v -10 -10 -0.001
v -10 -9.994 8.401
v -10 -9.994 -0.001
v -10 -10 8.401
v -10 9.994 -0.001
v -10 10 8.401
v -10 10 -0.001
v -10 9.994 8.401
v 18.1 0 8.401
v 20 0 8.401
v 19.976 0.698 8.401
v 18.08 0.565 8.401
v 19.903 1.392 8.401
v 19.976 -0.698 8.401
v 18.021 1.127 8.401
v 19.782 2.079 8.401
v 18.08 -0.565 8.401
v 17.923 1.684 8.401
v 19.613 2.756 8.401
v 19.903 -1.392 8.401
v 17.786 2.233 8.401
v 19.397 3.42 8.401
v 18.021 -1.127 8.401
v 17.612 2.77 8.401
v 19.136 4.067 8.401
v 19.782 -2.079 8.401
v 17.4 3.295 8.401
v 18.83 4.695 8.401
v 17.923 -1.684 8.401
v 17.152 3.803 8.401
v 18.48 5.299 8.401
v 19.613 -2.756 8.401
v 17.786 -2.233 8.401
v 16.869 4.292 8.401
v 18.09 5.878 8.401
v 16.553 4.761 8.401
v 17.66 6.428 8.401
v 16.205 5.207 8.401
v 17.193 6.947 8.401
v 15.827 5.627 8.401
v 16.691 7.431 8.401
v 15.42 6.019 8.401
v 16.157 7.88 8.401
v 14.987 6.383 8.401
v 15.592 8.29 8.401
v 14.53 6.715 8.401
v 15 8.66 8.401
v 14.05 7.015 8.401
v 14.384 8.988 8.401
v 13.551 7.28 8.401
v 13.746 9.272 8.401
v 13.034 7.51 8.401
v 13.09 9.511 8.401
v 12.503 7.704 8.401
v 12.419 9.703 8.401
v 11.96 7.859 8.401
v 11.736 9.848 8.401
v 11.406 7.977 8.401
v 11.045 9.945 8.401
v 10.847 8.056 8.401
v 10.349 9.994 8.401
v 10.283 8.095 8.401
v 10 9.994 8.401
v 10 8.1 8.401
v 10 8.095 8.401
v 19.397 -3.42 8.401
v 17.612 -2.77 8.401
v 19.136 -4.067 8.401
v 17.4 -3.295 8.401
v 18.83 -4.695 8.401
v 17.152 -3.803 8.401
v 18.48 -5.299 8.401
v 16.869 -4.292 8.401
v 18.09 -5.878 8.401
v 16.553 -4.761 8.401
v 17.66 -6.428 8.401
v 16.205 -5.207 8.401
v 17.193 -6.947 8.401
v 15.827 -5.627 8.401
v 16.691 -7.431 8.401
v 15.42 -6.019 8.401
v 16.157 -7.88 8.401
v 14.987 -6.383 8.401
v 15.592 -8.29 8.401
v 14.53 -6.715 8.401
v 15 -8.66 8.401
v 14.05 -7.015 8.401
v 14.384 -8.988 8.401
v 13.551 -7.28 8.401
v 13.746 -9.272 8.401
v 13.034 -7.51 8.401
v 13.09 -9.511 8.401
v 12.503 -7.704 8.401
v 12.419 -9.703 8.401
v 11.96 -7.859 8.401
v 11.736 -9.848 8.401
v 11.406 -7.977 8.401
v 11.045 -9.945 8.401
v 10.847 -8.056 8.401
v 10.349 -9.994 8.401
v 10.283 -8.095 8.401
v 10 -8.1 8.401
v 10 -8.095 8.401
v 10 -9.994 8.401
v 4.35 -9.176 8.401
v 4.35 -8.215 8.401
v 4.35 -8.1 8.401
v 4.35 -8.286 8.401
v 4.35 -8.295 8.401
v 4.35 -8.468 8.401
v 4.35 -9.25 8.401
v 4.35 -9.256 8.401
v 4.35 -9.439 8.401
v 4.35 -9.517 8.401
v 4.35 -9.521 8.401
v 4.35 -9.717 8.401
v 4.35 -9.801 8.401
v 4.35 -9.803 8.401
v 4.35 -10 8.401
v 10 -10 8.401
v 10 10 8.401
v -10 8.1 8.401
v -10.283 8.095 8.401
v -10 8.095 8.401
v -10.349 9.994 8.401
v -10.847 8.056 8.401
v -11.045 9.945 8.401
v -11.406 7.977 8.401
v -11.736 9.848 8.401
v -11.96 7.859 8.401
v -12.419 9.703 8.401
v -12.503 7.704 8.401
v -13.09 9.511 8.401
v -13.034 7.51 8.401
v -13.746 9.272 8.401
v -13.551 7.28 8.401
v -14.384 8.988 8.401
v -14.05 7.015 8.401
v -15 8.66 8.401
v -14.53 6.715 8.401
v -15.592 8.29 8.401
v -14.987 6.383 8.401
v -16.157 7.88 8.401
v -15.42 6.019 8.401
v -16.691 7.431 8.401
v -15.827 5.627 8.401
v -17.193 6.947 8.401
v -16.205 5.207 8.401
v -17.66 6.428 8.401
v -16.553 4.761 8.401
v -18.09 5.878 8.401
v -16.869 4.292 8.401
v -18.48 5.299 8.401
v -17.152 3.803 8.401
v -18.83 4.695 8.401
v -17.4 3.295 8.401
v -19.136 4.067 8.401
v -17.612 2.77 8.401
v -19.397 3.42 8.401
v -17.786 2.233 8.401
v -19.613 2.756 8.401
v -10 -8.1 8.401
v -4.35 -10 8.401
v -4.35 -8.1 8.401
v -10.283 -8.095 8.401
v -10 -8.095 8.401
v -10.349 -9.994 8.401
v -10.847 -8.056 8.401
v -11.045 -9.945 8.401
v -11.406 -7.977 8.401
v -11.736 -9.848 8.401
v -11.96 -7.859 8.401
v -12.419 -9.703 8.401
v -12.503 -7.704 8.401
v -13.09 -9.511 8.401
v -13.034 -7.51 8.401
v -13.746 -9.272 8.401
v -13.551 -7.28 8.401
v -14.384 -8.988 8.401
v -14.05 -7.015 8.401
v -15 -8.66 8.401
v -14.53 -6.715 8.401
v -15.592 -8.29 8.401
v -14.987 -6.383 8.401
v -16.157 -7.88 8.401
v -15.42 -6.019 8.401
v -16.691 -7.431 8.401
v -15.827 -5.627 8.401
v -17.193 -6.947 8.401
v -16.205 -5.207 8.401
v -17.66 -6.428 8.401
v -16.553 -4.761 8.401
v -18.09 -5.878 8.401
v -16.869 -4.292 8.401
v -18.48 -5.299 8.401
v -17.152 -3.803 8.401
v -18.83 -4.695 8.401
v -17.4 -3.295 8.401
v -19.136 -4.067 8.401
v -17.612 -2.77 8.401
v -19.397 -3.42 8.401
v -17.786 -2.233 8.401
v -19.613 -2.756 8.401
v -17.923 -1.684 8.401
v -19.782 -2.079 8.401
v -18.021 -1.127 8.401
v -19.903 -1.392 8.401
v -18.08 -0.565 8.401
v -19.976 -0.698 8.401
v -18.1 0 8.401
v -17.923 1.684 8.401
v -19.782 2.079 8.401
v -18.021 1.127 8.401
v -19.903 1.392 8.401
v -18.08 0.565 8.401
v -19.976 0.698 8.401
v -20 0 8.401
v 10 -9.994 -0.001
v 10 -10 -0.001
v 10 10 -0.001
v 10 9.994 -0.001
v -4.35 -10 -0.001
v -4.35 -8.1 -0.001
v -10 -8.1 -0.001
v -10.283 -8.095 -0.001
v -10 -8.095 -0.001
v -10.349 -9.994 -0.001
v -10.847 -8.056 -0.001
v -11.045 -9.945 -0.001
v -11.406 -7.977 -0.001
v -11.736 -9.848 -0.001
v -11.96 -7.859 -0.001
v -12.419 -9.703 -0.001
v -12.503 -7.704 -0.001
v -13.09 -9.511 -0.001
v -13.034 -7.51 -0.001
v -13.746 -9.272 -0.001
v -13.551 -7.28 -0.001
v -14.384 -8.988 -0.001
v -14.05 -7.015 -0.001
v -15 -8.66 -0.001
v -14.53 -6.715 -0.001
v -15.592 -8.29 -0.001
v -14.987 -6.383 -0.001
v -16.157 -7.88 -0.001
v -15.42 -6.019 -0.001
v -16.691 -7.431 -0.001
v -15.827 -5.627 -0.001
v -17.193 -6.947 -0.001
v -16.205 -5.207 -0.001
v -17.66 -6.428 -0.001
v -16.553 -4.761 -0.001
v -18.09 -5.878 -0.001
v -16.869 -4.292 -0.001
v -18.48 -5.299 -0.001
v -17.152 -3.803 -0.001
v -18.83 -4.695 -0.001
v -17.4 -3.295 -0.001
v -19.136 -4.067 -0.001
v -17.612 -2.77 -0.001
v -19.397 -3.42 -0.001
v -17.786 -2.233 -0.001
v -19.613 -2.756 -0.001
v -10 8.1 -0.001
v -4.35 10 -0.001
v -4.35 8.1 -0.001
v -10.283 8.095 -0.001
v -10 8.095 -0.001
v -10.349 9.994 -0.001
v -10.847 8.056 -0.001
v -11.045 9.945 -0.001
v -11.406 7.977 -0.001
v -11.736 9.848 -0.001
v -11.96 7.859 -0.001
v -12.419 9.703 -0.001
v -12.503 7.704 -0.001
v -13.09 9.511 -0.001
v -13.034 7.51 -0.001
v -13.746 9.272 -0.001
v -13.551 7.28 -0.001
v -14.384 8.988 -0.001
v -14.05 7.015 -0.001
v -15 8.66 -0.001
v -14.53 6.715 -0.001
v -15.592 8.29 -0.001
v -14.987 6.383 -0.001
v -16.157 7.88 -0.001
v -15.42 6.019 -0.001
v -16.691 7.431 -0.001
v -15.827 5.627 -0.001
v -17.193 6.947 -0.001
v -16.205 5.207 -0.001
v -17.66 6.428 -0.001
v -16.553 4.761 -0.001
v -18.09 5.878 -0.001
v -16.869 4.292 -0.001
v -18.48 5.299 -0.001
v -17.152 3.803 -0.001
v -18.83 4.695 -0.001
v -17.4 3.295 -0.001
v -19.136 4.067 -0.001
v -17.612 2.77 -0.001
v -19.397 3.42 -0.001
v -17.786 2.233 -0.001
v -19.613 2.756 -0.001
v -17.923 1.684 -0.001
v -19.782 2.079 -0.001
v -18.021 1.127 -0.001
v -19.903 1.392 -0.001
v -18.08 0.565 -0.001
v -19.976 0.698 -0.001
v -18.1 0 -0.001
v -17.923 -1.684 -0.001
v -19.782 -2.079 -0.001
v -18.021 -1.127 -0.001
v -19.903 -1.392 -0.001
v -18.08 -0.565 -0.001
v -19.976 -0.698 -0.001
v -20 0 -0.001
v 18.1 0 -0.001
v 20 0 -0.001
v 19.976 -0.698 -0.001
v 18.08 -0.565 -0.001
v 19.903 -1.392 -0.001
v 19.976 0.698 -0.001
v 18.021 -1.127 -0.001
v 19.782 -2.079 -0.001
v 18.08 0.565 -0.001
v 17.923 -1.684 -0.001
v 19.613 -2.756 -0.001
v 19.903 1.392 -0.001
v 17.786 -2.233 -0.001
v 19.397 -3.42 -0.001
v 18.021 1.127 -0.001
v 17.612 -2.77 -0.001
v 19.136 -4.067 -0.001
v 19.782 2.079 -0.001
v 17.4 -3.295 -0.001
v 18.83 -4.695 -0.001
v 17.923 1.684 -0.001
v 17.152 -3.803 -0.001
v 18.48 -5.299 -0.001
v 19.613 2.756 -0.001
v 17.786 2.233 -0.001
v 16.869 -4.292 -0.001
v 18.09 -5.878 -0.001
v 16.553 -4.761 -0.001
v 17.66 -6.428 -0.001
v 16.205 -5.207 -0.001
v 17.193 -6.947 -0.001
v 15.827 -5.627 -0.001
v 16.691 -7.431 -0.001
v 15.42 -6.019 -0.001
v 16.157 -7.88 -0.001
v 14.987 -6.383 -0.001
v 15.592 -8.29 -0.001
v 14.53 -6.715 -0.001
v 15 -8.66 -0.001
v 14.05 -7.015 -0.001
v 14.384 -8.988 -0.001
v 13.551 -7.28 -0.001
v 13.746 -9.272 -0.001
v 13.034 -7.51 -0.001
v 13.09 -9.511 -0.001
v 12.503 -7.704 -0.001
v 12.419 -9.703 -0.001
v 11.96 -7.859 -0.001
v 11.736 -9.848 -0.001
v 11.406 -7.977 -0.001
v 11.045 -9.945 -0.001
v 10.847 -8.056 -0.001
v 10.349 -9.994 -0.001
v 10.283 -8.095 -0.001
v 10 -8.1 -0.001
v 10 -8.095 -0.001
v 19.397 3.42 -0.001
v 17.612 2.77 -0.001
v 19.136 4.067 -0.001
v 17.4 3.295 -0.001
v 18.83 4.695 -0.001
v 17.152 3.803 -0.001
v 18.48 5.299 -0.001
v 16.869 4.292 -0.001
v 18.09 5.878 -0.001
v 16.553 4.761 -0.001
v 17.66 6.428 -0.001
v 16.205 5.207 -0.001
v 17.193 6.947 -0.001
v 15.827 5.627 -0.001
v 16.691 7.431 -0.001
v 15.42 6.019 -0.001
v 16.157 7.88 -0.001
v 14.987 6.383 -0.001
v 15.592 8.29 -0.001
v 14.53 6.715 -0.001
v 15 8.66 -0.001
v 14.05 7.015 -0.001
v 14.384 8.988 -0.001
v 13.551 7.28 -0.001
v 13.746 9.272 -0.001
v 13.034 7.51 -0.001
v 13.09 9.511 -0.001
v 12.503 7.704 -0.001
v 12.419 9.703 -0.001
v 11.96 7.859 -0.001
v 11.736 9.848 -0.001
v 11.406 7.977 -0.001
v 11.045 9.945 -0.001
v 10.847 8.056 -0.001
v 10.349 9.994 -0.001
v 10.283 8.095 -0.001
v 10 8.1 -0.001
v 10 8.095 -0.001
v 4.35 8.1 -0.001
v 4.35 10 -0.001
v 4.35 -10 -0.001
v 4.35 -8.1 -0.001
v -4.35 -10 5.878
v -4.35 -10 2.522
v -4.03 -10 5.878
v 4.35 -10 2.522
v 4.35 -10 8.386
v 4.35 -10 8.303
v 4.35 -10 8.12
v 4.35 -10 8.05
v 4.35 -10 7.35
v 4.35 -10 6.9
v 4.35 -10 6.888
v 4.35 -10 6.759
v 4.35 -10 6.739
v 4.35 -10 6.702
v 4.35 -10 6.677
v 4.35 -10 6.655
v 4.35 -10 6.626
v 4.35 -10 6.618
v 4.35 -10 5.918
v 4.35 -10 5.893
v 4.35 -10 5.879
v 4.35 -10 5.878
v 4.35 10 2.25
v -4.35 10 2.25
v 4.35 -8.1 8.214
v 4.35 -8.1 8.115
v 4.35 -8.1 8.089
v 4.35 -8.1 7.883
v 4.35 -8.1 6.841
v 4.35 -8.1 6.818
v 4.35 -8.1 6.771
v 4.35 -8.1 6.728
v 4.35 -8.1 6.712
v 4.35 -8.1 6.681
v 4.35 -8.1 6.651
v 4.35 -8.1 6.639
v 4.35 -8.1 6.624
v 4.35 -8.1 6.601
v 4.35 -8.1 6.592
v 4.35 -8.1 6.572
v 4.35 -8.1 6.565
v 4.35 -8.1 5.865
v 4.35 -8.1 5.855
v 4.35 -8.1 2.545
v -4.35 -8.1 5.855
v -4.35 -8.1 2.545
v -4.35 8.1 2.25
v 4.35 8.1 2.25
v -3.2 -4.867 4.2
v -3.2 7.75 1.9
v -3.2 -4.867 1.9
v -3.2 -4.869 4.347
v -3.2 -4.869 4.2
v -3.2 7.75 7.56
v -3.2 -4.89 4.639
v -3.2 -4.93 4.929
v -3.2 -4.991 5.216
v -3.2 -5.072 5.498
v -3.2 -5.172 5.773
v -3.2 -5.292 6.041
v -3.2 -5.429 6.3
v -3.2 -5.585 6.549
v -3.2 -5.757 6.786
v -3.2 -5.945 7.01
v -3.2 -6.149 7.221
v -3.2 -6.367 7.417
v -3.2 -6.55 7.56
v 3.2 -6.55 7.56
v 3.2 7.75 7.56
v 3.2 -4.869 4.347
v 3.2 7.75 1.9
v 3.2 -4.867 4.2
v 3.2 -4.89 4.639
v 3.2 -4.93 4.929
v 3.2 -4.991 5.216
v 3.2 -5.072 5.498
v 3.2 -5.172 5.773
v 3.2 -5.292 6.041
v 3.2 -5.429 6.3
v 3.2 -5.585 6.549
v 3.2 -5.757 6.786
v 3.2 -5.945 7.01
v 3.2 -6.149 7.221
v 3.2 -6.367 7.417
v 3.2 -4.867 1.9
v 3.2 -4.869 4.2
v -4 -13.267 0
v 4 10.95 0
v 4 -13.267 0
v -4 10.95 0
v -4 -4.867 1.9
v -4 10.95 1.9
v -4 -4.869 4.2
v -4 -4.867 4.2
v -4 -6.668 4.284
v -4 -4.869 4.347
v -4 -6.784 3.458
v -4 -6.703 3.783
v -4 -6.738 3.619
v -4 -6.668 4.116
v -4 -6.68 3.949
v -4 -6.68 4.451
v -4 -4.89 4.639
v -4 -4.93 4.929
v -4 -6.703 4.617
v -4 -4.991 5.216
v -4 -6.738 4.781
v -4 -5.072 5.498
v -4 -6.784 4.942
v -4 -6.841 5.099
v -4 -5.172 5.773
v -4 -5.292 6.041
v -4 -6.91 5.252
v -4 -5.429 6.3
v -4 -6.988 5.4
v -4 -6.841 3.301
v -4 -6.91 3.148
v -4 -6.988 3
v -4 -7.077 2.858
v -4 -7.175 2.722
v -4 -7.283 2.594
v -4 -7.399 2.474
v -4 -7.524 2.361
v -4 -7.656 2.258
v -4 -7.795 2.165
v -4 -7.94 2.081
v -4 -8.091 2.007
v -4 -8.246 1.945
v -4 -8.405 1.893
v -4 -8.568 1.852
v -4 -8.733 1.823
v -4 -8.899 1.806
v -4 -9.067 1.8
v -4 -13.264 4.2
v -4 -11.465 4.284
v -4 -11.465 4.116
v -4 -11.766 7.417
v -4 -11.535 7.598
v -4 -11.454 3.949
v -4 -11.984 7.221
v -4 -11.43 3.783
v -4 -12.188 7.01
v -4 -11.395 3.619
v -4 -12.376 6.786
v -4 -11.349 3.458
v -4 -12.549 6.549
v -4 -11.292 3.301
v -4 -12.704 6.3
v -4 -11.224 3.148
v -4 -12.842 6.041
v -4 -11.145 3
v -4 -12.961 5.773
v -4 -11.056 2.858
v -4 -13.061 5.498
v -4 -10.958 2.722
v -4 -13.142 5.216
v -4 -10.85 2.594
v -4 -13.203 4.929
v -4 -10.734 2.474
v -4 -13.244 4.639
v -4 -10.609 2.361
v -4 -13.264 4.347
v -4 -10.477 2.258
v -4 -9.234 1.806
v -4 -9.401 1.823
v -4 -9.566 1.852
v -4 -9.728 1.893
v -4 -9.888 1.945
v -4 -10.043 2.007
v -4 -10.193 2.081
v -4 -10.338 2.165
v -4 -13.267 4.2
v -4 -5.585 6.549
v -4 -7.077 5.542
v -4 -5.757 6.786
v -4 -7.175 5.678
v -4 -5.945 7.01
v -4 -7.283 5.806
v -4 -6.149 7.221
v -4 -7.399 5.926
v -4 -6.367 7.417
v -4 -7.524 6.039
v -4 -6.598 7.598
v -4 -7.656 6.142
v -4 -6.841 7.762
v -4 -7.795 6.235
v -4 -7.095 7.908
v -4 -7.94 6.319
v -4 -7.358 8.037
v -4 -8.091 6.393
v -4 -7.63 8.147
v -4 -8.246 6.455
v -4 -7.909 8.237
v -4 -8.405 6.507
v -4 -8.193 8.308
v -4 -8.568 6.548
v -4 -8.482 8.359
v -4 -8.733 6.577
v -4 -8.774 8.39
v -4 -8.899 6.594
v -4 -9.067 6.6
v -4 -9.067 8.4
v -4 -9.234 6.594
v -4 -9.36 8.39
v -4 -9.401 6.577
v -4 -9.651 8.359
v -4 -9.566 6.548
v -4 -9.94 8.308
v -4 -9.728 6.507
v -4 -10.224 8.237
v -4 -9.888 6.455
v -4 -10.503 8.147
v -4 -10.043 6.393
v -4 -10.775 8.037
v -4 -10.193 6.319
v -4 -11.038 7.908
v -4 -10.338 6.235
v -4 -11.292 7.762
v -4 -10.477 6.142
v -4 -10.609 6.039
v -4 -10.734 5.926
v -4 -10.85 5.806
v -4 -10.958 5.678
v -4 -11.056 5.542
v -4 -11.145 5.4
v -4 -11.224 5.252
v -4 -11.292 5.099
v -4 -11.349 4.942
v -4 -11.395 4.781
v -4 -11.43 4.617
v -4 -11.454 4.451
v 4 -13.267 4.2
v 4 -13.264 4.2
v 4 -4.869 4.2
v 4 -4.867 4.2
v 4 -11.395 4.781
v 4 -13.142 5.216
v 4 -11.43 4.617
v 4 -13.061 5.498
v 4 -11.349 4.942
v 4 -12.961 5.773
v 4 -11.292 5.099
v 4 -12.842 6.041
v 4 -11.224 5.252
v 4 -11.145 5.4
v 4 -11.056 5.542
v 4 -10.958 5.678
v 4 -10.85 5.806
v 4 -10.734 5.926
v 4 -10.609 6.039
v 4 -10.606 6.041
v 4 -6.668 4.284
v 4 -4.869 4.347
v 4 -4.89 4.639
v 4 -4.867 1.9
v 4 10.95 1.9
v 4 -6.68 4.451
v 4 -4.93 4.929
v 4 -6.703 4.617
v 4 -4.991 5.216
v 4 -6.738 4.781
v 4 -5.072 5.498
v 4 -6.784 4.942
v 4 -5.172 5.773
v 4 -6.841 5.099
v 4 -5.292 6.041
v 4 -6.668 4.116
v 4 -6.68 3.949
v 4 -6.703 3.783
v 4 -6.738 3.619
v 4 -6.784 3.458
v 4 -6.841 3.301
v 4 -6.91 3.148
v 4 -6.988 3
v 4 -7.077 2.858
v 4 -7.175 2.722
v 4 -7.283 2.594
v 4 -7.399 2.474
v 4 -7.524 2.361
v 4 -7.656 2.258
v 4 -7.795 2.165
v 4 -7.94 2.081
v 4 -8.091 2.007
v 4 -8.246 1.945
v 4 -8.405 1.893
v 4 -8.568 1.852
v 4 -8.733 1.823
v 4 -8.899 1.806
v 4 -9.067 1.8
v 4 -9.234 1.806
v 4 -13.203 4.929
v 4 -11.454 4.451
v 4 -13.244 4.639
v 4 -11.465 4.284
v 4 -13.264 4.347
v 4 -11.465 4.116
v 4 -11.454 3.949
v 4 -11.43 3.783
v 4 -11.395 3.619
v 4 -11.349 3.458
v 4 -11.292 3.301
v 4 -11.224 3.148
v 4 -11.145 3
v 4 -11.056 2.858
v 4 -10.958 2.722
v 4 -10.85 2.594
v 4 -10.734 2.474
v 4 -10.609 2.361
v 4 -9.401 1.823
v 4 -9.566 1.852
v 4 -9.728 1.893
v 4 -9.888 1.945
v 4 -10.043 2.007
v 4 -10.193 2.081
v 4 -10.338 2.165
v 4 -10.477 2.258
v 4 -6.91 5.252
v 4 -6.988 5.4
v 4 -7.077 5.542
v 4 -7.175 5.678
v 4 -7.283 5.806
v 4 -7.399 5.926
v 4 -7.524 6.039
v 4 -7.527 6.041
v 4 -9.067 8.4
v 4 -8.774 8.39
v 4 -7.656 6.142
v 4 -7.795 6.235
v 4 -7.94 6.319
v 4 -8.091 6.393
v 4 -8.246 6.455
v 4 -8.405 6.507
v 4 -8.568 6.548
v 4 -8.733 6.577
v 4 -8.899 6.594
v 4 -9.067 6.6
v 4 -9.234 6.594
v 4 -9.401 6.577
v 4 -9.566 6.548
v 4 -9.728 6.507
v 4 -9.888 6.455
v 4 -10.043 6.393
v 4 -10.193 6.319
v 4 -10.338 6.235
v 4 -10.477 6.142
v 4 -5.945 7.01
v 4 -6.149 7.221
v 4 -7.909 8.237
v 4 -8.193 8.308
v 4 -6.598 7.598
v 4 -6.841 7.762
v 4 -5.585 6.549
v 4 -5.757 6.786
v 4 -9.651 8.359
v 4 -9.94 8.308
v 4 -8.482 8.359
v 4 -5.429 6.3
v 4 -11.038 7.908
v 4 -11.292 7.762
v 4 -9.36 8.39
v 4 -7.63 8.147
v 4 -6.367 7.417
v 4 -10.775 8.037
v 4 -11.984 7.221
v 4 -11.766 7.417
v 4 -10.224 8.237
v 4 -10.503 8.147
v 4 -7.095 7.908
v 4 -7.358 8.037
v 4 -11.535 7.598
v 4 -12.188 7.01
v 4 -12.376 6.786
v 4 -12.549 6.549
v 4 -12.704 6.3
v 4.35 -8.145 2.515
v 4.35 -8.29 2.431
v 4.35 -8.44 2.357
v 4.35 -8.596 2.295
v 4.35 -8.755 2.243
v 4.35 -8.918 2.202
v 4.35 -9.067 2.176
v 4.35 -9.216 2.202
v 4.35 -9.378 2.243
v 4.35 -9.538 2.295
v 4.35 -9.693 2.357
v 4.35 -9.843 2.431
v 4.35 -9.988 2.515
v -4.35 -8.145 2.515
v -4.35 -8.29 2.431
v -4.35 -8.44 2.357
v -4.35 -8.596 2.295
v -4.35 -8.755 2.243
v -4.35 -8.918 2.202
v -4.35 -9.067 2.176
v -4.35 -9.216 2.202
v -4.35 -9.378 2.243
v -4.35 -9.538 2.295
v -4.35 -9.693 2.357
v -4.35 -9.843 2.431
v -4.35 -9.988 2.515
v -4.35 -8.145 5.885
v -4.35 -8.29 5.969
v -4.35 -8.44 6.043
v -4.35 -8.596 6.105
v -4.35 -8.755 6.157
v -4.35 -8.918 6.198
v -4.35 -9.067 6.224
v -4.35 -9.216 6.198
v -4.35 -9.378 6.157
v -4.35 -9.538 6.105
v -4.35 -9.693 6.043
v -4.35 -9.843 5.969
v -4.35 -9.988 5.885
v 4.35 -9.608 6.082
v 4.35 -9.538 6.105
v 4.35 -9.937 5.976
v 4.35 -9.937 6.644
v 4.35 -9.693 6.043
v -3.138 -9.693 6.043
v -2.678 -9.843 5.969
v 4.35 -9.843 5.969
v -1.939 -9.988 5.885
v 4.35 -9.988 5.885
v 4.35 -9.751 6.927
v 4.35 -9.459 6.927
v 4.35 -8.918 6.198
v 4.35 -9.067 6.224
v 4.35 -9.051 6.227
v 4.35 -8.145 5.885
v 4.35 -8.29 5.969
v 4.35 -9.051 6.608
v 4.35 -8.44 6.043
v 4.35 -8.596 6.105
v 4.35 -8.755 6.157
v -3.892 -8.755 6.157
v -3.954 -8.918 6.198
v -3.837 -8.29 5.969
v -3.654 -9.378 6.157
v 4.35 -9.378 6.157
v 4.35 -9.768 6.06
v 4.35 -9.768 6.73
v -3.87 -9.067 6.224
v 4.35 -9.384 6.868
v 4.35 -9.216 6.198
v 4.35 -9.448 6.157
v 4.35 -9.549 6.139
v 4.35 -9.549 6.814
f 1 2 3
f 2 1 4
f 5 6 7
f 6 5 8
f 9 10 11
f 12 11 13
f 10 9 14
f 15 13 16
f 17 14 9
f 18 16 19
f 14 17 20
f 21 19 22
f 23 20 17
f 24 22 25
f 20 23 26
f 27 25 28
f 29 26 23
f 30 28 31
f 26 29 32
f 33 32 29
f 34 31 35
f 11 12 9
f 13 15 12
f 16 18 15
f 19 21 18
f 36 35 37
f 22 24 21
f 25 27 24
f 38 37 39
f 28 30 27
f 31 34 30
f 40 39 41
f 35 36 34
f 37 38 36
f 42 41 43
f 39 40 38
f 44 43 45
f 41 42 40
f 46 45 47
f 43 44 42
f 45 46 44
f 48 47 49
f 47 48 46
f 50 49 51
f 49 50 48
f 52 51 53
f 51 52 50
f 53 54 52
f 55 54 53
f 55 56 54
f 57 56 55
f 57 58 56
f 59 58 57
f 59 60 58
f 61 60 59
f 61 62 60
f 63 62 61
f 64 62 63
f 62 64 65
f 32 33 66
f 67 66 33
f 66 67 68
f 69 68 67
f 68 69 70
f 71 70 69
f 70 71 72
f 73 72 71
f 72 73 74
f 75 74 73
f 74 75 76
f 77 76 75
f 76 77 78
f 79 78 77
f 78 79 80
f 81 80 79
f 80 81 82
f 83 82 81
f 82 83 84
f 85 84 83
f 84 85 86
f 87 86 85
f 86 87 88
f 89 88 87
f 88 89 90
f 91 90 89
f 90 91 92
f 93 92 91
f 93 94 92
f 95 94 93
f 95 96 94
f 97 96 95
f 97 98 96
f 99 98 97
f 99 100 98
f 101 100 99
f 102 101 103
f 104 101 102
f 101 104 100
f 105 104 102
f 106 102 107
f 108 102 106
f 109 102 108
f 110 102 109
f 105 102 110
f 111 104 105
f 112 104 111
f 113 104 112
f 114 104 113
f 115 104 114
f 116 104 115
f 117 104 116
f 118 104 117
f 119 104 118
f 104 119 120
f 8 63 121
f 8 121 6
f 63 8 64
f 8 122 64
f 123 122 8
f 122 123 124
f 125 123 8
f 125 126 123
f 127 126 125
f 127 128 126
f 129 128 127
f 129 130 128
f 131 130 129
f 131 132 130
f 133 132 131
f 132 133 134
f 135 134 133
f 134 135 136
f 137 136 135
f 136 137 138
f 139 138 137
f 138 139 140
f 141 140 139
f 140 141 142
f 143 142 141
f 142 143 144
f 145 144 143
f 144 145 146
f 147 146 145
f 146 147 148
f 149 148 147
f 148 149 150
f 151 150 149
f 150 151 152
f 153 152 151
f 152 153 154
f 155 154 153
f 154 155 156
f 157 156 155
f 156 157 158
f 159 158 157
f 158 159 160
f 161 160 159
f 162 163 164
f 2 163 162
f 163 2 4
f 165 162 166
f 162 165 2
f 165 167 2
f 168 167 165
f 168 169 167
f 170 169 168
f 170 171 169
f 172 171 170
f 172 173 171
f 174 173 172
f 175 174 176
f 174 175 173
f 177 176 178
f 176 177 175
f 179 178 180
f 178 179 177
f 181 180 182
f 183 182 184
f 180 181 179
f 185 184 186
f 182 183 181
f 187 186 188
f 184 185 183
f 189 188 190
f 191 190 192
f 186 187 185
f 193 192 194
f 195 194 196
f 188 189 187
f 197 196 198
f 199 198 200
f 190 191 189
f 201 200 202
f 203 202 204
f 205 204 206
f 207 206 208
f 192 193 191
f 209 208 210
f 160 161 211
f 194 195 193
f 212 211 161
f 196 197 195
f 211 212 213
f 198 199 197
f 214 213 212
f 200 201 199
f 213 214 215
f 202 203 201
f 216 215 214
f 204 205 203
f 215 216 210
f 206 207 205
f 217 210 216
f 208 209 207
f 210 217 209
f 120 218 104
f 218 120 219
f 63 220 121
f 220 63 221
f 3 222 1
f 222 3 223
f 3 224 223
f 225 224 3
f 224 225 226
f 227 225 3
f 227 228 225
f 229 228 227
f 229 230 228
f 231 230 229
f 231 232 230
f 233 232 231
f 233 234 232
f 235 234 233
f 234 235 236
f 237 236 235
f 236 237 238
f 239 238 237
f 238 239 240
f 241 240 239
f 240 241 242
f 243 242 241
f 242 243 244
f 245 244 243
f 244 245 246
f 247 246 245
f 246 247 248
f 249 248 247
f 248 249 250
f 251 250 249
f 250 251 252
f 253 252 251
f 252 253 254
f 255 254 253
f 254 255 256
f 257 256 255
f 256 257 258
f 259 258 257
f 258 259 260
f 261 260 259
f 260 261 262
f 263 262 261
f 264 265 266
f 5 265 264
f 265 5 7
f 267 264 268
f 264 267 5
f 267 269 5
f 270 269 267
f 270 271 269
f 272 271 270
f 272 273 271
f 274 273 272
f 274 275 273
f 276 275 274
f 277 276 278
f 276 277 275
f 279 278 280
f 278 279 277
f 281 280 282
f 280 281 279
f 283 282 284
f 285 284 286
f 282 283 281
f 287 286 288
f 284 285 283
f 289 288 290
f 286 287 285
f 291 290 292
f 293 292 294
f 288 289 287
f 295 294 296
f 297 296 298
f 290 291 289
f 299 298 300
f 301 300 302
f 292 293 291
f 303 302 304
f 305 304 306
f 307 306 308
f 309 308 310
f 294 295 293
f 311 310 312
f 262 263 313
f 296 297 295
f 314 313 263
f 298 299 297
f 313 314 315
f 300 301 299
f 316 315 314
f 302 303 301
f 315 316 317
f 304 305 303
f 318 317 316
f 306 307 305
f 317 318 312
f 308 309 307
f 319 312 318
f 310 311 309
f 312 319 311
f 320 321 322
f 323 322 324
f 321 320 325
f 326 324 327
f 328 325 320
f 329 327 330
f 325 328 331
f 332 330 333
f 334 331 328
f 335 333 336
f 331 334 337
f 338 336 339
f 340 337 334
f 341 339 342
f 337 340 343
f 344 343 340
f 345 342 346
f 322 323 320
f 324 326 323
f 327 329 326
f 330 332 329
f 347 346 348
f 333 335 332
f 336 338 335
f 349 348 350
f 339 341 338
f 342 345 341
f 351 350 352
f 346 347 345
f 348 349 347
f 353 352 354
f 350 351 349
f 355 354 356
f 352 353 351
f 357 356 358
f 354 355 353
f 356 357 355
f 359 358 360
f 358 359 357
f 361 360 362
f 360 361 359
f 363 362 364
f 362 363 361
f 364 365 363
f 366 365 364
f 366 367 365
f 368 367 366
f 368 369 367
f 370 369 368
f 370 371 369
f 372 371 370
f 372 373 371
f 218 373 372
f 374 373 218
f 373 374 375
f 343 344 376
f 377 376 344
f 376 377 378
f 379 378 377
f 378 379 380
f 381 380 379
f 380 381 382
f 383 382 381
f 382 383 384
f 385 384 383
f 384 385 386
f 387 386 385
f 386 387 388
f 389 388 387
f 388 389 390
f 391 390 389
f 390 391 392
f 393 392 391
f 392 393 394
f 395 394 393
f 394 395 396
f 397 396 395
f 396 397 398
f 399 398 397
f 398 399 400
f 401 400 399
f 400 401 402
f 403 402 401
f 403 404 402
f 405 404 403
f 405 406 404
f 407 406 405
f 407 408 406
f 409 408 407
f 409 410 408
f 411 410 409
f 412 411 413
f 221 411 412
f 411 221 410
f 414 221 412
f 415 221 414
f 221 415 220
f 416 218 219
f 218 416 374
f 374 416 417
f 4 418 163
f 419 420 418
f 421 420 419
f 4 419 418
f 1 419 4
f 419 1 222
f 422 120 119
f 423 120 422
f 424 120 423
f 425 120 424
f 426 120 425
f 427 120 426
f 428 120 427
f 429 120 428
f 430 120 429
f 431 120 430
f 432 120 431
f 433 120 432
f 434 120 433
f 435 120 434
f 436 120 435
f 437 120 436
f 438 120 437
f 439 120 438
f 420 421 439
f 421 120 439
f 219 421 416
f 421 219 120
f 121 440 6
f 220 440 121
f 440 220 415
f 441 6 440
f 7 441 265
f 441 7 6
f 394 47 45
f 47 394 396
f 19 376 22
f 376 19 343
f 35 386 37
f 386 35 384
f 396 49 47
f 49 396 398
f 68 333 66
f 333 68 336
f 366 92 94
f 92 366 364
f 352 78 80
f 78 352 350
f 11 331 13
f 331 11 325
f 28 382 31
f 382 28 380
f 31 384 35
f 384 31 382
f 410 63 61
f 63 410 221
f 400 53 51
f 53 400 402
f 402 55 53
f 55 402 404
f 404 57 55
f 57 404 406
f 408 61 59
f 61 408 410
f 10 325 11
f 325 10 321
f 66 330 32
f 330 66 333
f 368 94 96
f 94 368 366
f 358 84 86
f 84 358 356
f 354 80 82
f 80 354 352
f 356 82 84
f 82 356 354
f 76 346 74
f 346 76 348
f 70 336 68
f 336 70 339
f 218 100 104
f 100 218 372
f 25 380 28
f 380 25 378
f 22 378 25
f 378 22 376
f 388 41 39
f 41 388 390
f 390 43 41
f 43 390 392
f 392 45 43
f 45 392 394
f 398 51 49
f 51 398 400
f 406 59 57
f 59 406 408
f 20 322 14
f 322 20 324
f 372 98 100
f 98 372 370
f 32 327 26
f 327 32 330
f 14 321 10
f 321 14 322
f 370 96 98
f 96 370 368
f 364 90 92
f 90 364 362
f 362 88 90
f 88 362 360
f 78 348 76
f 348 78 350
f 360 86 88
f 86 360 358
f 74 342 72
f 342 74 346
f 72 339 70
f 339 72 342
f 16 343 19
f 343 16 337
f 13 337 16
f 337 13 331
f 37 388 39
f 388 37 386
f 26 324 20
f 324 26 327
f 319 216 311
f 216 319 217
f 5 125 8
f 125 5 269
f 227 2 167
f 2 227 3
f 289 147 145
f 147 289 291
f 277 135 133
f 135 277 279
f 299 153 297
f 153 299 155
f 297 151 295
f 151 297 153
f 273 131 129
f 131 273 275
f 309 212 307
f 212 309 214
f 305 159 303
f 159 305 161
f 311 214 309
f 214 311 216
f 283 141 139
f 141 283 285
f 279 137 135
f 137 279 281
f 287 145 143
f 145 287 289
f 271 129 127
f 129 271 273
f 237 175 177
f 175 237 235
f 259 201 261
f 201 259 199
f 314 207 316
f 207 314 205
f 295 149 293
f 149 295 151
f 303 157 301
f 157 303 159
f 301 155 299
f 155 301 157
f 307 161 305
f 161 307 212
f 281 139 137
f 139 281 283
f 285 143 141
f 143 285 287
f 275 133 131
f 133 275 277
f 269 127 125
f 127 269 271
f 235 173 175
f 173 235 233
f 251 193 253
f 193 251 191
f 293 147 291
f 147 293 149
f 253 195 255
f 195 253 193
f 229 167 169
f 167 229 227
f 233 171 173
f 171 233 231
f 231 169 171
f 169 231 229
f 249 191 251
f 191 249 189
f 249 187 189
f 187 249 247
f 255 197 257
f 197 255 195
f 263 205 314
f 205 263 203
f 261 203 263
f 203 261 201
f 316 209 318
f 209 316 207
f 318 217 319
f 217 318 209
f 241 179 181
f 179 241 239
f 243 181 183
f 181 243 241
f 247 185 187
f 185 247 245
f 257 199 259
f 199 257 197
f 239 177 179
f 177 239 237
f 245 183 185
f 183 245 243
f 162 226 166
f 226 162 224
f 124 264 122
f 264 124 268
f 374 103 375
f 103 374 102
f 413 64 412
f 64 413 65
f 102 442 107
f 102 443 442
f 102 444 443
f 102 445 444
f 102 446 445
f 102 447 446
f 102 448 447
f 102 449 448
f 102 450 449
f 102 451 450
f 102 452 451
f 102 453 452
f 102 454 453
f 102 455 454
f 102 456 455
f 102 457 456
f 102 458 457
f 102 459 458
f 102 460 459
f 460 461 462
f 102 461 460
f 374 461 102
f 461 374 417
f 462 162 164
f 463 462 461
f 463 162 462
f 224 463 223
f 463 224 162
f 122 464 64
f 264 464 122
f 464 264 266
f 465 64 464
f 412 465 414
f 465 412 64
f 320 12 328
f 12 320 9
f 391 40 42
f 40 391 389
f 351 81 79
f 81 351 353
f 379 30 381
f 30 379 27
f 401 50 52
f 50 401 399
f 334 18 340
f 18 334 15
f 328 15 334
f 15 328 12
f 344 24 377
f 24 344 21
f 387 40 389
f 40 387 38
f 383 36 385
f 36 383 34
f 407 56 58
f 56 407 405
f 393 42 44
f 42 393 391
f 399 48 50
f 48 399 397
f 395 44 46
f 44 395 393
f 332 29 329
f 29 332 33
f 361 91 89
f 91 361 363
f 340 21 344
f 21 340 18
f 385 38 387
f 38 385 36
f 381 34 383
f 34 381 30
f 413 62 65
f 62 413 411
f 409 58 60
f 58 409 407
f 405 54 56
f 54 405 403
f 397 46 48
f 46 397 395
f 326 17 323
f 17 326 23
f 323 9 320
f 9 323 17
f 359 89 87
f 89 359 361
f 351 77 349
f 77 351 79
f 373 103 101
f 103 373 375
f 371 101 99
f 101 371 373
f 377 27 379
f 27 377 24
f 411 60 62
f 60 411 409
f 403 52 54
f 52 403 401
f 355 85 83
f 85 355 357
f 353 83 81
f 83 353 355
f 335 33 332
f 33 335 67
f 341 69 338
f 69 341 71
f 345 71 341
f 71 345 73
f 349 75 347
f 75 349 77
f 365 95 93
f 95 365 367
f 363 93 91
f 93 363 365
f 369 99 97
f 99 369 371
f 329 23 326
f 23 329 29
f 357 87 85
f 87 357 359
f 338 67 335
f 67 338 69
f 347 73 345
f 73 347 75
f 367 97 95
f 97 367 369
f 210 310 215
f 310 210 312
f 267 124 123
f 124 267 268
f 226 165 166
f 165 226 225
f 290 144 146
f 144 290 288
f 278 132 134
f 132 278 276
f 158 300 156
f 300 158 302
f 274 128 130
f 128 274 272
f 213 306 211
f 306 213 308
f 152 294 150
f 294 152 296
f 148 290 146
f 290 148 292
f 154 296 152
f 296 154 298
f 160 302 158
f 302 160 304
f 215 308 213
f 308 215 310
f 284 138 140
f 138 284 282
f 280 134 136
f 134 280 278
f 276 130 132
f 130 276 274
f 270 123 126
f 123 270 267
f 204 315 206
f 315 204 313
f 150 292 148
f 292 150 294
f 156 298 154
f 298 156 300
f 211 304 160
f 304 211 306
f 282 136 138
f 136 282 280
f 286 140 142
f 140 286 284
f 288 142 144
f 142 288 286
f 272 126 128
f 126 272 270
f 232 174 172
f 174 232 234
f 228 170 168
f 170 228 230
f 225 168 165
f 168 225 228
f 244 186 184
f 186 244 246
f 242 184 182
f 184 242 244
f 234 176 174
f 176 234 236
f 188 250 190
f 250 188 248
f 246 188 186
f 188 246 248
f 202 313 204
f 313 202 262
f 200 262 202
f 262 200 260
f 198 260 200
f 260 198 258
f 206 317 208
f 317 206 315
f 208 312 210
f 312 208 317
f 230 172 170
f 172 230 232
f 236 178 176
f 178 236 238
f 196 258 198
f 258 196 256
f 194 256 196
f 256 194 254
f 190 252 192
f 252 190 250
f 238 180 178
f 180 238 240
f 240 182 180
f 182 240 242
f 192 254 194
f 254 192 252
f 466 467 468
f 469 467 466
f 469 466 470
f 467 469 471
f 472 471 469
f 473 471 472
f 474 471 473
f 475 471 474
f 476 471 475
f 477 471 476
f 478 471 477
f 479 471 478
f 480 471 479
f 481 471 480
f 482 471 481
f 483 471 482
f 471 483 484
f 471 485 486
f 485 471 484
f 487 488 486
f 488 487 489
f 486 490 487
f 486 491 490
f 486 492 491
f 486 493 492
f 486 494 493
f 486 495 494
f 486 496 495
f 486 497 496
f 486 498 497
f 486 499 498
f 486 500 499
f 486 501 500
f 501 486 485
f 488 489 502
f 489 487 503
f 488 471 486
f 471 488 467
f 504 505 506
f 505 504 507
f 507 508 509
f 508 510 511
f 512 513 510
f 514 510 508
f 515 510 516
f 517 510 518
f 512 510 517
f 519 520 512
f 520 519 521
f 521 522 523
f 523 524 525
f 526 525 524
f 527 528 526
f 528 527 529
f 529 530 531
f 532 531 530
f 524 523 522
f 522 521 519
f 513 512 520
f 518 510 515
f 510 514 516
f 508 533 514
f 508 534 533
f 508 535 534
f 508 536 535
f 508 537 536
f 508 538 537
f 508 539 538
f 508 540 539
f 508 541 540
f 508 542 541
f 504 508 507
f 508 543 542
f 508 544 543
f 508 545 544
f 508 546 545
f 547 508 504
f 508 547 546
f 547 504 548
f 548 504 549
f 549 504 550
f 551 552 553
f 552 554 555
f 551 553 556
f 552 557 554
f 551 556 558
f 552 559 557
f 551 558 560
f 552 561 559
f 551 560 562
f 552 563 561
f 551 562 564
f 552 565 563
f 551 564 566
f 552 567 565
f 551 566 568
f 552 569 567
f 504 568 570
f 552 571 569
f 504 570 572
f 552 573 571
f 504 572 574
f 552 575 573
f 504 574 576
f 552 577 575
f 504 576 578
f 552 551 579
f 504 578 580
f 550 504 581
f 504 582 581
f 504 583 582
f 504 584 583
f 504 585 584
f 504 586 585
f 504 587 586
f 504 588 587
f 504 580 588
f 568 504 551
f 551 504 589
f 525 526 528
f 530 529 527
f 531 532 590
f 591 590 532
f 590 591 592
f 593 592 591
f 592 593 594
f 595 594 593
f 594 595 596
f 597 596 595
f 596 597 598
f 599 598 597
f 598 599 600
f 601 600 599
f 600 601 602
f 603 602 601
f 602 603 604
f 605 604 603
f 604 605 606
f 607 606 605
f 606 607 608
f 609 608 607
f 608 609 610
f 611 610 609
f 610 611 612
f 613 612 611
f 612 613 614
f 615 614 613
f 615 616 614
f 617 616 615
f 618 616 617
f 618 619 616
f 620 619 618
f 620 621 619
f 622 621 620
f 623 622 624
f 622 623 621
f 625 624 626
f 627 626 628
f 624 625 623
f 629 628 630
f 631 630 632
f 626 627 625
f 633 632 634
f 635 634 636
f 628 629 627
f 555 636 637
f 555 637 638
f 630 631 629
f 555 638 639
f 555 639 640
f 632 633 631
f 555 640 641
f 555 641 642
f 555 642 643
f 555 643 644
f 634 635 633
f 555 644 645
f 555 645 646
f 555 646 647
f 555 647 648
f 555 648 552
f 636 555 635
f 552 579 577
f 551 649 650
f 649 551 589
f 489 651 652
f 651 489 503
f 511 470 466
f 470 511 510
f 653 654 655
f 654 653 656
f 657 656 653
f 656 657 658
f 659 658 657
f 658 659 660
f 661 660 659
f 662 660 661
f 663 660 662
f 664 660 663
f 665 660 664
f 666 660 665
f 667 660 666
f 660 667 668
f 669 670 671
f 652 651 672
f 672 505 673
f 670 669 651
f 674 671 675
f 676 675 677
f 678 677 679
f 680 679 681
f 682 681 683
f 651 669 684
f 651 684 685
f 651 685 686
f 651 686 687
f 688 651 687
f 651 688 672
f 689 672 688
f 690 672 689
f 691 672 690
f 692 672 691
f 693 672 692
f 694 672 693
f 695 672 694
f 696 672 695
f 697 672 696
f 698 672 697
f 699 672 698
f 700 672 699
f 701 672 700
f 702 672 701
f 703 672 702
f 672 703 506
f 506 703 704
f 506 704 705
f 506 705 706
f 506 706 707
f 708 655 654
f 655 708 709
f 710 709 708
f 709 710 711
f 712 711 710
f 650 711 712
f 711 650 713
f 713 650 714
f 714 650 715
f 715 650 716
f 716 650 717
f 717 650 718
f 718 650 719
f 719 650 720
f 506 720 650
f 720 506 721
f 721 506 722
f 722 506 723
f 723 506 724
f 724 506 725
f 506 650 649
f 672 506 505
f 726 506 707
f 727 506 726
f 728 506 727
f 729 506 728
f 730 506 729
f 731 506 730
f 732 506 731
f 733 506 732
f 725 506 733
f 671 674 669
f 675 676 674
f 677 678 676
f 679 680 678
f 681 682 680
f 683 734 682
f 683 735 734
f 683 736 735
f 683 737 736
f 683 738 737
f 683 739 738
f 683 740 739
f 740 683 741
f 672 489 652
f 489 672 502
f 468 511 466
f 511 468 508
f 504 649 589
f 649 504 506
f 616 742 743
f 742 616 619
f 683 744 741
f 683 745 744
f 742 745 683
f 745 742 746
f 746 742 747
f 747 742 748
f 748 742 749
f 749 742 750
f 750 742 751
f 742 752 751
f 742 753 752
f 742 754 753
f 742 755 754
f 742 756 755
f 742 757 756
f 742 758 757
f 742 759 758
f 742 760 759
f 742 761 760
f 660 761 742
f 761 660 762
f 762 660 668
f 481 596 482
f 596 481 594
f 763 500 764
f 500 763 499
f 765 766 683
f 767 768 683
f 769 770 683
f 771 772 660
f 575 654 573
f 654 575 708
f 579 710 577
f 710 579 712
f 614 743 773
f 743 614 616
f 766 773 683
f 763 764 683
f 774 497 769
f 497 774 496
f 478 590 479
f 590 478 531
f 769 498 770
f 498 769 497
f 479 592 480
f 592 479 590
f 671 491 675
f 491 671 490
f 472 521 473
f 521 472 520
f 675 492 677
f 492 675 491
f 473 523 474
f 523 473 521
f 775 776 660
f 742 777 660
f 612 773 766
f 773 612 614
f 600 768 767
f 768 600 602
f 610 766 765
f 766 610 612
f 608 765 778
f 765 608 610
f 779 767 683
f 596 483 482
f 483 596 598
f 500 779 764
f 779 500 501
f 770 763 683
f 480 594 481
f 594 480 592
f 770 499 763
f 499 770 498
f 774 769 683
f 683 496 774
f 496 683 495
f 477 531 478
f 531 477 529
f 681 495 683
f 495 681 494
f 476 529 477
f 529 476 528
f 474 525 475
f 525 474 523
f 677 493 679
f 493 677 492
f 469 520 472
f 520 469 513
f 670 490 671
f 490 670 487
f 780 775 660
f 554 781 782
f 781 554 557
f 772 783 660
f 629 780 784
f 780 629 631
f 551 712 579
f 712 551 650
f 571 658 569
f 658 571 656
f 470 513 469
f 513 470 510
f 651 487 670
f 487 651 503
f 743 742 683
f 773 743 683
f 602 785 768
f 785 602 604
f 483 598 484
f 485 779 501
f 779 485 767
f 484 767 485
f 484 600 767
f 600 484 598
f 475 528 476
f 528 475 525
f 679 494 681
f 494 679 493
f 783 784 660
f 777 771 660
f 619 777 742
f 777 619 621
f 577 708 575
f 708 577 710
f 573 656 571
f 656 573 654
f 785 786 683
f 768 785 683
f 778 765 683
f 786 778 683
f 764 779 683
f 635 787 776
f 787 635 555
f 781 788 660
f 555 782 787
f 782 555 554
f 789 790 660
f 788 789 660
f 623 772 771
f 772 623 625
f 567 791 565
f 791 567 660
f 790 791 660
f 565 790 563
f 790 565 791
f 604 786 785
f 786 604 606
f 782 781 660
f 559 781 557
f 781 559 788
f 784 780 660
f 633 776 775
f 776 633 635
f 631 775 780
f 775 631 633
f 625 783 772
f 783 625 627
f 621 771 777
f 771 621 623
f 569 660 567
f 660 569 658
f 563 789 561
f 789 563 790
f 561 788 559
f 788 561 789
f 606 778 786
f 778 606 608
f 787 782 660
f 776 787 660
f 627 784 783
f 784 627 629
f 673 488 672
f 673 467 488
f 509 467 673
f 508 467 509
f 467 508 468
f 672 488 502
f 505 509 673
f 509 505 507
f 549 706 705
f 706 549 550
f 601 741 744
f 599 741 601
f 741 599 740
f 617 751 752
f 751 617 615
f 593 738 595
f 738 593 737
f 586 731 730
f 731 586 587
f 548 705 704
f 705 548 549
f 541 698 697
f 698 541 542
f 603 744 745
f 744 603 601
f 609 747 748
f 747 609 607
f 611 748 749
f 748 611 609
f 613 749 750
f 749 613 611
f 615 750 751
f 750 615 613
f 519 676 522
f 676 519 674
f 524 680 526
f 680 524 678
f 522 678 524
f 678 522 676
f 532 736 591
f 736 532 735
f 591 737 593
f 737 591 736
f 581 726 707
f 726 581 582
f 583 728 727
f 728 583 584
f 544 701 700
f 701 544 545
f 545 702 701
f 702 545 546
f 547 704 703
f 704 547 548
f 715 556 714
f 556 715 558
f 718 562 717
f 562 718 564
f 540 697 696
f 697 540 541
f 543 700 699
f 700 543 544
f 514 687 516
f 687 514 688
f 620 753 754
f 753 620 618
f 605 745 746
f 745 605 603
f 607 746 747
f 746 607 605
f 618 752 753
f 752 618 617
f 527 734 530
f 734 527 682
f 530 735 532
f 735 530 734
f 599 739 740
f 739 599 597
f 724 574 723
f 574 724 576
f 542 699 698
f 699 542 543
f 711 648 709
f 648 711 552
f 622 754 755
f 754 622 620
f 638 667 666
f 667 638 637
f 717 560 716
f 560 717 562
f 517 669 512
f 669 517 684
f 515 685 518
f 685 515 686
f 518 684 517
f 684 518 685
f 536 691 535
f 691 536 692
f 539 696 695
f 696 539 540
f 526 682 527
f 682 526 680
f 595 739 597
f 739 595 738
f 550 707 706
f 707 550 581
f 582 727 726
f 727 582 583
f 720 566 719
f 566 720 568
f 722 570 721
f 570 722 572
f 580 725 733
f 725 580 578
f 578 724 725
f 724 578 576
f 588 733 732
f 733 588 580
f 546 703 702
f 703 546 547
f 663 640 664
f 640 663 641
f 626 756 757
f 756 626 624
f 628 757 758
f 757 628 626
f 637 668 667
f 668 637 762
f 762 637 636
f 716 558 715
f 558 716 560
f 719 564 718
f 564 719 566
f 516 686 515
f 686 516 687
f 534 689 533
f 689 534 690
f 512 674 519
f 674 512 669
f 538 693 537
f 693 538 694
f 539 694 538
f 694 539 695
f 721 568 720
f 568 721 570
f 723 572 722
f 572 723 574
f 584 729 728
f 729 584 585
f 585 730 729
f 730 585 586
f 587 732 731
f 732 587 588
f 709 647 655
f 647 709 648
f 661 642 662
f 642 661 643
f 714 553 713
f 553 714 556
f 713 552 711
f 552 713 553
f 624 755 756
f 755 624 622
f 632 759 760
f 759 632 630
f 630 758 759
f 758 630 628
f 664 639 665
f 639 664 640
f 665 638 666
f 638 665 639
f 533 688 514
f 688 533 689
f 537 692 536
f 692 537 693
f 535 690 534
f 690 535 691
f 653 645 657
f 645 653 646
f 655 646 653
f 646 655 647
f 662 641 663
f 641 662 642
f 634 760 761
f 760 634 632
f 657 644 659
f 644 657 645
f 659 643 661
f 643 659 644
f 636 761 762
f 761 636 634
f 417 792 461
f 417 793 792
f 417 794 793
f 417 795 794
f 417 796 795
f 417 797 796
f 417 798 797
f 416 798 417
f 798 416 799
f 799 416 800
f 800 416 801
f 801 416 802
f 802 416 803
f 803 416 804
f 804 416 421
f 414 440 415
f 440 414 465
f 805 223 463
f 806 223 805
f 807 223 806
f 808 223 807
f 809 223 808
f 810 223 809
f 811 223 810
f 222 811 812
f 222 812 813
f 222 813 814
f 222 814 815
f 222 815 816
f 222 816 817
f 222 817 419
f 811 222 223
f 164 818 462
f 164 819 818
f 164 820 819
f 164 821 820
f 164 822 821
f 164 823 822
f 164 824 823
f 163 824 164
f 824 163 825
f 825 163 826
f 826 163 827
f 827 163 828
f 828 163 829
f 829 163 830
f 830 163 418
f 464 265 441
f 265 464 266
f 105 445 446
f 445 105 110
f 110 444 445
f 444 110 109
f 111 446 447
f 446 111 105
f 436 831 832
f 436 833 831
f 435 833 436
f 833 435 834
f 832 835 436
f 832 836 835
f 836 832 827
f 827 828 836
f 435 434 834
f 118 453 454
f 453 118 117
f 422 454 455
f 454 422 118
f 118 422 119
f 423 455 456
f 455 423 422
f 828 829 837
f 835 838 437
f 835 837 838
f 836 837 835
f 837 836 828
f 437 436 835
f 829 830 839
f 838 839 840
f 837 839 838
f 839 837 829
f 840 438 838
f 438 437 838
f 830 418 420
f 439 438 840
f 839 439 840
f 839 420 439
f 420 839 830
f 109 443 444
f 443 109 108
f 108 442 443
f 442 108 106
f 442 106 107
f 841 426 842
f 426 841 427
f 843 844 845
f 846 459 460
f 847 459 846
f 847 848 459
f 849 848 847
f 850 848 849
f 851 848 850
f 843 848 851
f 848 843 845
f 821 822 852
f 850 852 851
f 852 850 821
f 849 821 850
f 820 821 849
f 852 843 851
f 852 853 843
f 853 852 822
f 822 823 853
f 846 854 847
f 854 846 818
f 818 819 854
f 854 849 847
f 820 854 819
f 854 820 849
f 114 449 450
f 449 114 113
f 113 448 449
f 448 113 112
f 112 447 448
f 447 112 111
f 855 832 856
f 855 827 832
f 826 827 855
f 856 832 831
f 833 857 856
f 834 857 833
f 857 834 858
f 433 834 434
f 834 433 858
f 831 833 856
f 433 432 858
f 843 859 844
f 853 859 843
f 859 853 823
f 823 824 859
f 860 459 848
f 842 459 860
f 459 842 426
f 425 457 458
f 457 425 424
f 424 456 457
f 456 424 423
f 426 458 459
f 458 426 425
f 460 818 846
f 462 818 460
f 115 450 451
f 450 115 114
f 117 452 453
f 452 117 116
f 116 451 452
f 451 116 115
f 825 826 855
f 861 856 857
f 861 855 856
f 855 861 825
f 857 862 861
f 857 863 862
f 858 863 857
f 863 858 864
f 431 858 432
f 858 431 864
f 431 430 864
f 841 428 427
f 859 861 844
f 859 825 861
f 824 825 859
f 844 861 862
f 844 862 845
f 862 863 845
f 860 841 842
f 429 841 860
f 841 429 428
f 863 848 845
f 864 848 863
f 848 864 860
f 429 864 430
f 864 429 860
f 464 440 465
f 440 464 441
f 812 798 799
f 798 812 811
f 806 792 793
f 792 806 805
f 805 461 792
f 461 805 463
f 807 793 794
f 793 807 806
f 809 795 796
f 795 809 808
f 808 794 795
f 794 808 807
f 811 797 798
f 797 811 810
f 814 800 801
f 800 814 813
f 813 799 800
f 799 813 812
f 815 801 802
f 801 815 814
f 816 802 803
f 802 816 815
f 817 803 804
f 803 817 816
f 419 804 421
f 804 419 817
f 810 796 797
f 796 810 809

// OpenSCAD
// Object sizes
WALL_THICKNESS = 1.9; // 1.7
HEIGHT = 8.4;
DEPTH = 20; // 24 17
WIDTH = 40; // 48 32
FLAP_WIDTH = 8; // 9 7.1
PLAY = 0.7;

// Rendering
DRAFT = false; // false: final rendering, true: disable Minkowski
ATOM = 0.001;
$fn = 90;

// Derived values
HINGE_RADIUS = HEIGHT/2;
SPACE = PLAY/2;

module rounded(offset, h) {
    cube([WIDTH-DEPTH-offset*0, DEPTH-offset*2, h+ATOM*2], true);

    translate([WIDTH/2-DEPTH/2, 0, 0])
    cylinder(d=DEPTH-offset*2, h=h+ATOM*2, center=true);

    translate([-WIDTH/2+DEPTH/2, 0, 0])
    cylinder(d=DEPTH-offset*2, h=h+ATOM*2, center=true);
}

module box(h) {
    translate([0, 0, HEIGHT/2])
    difference() {
        rounded(0, h);
        rounded(WALL_THICKNESS, h+ATOM*2);
    }
}

module flap() {
     width = FLAP_WIDTH;
     width2 = FLAP_WIDTH * .8;
	difference() {
		union() {
			translate([-width/2, -DEPTH/2 +WALL_THICKNESS/2, 0])
			cube([width, DEPTH, WALL_THICKNESS]);
			if (0) {
				translate([-width/2, -DEPTH/2 -WALL_THICKNESS, 0])
				cube([width, DEPTH - SPACE, HEIGHT]);

				translate([-width/2, -DEPTH/2 + HINGE_RADIUS/4.5-HINGE_RADIUS, 0])
				cube([width, HINGE_RADIUS*2, HEIGHT]);
			} else {
				translate([-width2/2, -DEPTH/2 + WALL_THICKNESS*.5, 0])
				cube([width2, DEPTH -WALL_THICKNESS*1.5 - SPACE, HEIGHT*.9]);

				translate([-width/2, -DEPTH/2 + HINGE_RADIUS/4.5-HINGE_RADIUS, 0])
				cube([width, HINGE_RADIUS*2, HINGE_RADIUS]);

				translate([-width/2, -DEPTH/2 +  HINGE_RADIUS/4.5, HINGE_RADIUS])
				rotate([0, 90, 0])
				cylinder(r=HINGE_RADIUS, h=width);
			}
		}

		translate([-width/2-1, -DEPTH/2 + HINGE_RADIUS/4.5, HINGE_RADIUS])
		rotate([0, 90, 0])
		cylinder(r=HINGE_RADIUS/1.75, h=width+2);

	}
}

module grow() {
	if (DRAFT) {
		children();
	} else {
		minkowski() {
			children();
			cube([PLAY, PLAY, PLAY], true);
		}
	}
}

module unit() {
	difference() {
		box(HEIGHT);
		grow()
		flap();
	}
	flap();
}


unit();
//flap();
